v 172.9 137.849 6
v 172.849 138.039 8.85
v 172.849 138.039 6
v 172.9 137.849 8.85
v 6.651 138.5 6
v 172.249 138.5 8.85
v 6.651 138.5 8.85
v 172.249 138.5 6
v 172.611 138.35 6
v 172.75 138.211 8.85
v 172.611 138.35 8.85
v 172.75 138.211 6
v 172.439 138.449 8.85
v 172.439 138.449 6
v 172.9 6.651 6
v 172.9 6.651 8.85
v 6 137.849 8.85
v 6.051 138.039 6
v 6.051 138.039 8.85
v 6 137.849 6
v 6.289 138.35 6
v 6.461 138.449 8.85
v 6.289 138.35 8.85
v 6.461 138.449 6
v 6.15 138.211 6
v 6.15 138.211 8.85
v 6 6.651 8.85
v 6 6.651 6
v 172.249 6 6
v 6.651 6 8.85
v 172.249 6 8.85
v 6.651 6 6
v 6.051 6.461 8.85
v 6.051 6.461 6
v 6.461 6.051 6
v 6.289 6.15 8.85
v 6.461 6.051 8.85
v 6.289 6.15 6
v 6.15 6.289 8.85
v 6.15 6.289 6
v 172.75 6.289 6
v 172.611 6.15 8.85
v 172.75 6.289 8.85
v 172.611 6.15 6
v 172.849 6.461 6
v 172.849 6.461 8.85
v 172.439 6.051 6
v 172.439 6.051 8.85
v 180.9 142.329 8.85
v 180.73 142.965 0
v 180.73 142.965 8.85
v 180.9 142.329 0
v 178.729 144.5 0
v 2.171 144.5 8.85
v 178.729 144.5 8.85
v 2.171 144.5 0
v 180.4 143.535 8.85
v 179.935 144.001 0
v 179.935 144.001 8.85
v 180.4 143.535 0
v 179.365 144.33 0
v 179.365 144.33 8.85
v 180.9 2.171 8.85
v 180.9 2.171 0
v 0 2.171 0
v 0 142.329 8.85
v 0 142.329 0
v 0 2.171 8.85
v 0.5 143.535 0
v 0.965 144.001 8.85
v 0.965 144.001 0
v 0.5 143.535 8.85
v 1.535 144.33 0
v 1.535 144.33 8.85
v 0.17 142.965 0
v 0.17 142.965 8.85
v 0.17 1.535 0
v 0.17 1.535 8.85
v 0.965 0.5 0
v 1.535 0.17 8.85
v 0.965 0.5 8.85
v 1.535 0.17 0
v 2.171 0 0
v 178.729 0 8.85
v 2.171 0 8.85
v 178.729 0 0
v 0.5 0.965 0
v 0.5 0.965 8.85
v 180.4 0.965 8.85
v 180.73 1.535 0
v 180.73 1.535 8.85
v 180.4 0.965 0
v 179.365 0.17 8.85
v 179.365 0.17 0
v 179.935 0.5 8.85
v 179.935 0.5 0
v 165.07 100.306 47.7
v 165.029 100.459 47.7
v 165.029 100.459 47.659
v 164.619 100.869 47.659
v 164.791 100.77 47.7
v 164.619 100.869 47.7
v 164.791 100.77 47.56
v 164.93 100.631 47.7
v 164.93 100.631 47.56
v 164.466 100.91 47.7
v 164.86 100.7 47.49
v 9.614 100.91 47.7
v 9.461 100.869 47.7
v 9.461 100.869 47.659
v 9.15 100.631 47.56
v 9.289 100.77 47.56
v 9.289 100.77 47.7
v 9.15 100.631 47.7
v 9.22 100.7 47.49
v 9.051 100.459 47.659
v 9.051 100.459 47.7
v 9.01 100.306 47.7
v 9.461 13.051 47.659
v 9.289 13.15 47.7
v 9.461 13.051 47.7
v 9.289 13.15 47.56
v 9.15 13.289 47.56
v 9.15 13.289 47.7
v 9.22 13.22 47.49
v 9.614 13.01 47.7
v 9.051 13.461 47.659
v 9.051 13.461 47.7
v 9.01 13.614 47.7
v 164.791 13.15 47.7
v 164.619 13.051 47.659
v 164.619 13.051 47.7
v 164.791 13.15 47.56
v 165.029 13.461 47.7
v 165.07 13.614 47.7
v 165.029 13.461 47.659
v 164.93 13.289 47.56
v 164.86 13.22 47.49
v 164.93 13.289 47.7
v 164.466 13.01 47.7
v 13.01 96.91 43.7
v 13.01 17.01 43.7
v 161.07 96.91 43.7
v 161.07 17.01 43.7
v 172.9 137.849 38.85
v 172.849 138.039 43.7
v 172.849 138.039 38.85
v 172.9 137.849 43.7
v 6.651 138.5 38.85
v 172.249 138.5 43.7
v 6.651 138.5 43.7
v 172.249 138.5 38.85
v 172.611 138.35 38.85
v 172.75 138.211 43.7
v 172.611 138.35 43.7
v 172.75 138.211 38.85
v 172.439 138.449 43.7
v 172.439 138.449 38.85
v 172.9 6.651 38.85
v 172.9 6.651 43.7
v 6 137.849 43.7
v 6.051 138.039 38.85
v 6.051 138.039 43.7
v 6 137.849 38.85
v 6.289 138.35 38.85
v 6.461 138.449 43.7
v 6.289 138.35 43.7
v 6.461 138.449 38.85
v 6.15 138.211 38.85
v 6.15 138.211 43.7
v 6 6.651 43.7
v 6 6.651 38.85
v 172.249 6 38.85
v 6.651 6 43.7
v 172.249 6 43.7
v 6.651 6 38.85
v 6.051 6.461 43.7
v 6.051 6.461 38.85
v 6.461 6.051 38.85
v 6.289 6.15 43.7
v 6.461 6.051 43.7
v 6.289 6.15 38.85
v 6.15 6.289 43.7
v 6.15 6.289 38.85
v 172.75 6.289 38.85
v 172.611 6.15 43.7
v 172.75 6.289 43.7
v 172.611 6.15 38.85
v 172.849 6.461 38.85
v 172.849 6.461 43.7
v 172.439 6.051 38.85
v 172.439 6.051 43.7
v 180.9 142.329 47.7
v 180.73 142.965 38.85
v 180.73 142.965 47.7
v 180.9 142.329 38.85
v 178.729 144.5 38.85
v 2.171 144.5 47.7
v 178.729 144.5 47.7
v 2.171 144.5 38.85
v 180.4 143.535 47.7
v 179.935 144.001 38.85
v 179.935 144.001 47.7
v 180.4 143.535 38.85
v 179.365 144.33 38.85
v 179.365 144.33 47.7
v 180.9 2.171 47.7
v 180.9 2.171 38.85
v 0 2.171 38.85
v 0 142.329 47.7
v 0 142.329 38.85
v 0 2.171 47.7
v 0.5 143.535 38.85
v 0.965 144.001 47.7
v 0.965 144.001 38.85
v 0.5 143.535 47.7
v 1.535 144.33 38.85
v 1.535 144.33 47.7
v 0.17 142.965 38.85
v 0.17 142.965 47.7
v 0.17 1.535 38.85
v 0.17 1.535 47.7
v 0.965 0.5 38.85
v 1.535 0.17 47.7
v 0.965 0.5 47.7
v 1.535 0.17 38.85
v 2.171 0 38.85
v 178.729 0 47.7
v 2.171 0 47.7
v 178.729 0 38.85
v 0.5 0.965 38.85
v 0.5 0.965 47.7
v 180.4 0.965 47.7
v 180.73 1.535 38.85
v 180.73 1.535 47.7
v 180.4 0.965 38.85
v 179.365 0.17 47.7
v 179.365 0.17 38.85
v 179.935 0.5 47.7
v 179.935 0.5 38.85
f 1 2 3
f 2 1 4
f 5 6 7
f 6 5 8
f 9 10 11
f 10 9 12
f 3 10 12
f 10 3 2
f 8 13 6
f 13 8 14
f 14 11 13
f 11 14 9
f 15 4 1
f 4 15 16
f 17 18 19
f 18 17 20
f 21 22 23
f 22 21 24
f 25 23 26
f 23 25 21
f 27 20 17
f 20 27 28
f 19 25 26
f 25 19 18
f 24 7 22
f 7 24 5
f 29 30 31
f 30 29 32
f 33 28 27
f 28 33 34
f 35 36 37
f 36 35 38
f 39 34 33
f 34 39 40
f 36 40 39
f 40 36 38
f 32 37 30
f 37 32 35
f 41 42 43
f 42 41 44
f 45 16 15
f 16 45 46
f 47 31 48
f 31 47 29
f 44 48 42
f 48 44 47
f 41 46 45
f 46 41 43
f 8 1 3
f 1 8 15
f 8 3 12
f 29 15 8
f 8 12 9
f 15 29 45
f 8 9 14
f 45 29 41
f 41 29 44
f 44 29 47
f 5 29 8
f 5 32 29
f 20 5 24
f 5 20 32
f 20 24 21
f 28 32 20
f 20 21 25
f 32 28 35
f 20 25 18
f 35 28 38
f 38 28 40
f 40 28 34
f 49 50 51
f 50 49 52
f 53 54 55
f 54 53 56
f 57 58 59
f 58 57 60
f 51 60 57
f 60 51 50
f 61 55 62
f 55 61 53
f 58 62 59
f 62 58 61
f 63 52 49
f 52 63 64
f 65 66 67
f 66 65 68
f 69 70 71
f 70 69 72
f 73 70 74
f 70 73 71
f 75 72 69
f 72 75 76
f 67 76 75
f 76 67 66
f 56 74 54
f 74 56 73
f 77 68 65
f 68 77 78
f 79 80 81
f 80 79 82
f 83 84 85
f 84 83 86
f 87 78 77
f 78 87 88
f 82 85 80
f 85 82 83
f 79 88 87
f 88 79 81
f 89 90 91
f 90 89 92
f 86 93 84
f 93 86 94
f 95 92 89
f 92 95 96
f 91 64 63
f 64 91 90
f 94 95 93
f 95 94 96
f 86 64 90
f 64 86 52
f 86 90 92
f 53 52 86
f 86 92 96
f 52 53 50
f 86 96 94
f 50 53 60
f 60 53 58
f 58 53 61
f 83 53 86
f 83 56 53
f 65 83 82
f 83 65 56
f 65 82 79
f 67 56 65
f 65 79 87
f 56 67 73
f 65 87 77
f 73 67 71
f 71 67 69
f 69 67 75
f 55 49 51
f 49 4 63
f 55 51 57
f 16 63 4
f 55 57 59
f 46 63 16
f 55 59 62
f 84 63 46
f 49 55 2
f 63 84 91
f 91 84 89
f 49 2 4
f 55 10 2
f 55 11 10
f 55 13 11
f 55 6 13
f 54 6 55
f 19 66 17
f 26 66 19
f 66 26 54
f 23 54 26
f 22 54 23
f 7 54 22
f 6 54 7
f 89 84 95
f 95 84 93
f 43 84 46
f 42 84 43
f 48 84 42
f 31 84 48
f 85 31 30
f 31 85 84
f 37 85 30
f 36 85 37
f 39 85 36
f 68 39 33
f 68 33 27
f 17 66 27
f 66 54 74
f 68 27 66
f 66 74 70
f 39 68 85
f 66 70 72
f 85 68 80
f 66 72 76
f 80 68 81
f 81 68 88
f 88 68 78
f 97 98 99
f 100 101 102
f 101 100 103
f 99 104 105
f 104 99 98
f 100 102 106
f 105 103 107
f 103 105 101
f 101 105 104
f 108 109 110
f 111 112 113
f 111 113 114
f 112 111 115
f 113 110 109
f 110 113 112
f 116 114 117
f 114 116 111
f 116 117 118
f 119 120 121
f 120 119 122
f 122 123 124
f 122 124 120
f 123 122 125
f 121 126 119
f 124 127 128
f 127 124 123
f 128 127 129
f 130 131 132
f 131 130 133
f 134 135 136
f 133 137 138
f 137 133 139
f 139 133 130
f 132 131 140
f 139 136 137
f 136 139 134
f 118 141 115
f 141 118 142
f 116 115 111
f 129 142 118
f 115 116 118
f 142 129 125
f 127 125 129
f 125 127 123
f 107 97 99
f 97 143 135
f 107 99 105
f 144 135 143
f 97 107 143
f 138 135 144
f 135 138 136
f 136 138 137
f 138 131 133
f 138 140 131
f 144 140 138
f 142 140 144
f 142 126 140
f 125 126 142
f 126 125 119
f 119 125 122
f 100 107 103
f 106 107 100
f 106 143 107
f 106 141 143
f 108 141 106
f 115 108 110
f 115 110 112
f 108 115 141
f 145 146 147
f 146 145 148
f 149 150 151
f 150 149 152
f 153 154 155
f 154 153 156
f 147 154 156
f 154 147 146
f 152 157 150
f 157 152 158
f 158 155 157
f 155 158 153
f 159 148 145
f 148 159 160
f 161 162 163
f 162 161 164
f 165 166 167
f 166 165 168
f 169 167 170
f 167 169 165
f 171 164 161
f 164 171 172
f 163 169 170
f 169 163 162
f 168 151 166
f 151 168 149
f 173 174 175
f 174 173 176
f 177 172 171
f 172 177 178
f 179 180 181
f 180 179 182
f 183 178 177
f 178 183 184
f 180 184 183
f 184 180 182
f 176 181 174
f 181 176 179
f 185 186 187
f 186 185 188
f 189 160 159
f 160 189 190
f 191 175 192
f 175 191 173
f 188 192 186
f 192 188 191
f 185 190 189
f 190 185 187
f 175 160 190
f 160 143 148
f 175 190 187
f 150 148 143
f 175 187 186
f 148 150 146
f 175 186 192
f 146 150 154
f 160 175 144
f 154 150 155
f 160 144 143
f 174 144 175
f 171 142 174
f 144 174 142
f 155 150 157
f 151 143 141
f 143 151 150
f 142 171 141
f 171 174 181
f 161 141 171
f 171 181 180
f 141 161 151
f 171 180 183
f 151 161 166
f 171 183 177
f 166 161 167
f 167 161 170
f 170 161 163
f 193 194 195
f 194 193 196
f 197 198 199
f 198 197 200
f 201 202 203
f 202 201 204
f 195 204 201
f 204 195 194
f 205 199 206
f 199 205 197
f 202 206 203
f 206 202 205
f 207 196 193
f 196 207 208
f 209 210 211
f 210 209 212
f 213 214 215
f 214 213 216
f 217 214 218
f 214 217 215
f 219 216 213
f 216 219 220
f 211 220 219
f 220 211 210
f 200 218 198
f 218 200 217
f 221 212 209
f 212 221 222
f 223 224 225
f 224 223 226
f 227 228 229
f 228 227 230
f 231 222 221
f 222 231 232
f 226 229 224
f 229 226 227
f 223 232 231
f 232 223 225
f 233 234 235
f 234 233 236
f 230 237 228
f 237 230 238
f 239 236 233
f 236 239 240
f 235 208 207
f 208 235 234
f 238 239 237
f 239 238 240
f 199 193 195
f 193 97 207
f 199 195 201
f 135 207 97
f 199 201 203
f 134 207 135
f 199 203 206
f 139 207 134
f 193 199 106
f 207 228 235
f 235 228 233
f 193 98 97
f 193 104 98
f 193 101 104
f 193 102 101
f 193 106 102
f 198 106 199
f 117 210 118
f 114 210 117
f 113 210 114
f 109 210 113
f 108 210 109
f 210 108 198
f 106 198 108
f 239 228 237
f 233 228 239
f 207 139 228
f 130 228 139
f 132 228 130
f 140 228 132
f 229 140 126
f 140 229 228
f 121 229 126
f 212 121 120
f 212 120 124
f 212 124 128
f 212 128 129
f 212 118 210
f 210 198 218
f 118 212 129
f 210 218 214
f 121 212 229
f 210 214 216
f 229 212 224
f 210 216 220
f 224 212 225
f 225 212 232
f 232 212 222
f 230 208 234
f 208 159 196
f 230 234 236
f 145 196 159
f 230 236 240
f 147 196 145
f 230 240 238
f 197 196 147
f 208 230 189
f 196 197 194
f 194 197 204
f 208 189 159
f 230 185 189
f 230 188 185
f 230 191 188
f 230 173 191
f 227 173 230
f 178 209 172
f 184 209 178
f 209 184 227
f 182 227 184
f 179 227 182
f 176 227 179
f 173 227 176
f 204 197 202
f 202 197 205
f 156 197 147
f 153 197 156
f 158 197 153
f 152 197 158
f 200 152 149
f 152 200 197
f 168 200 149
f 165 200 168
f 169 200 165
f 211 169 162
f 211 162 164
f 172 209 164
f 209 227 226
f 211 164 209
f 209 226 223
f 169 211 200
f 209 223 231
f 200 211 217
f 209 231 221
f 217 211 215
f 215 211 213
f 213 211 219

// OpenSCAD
/*     _   __                           __  __  ___      __
 *    / | / /___ ______________  ____  / /_/  |/  /___ _/ /_____  _____
 *   /  |/ / __ `/ ___/ ___/ _ \/ __ \/ __/ /|_/ / __ `/ //_/ _ \/ ___/
 *  / /|  / /_/ (__  ) /__/  __/ / / / /_/ /  / / /_/ / ,< /  __/ /
 * /_/ |_/\__,_/____/\___/\___/_/ /_/\__/_/  /_/\__,_/_/|_|\___/_/
 *
 * This work is licensed under the Creative Commons Attribution-ShareAlike
 * 4.0 International License. To view a copy of this license, visit
 * https://creativecommons.org/licenses/by-sa/4.0/.
 */

/*                __             _
 *  ______ _____ / /____  __ _  (_)__ ___ ____
 * / __/ // (_-</ __/ _ \/  ' \/ /_ // -_) __/
 * \__/\_,_/___/\__/\___/_/_/_/_//__/\__/_/
 */

/* [Customizable Display Enclosure] */

// Module size in mm, W and H, defaults to the size of the Innolux AT070TN94
module_size = [164.9, 100.0];
// Module depth in mm
module_thickness = 5.7;
// Display active area in mm, W and H
display_active_area_size = [154.08, 85.92];
// Enclosure tolerance in mm
enclosure_tolerance = 1.0; // [0.5, 0.75, 1, 1.25, 1.50, 1.75, 2]
// Enclosure wall depth
enclosure_wall_thickness = 5.0;
// Dimensions of the breakout button PCB
button_pcb_dimensions = [75.25, 16.25];

/* [Preview Settings] */

// Split enclosure into parts
preview_parts = true;

/*    __       __        __   __  __  __                     __
 *   / /  ___ / /  ___  / /__/ / / /_/ /  ___   _______  ___/ /__
 *  / _ \/ -_) _ \/ _ \/ / _  / / __/ _ \/ -_) / __/ _ \/ _  / -_)
 * /_.__/\__/_//_/\___/_/\_,_/  \__/_//_/\__/  \__/\___/\_,_/\__/
 */

/* [Hidden] */

include <../libraries/BOSL/constants.scad>
use <../libraries/BOSL/shapes.scad>
use <../libraries/BOSL/masks.scad>
use <../libraries/BOSL/transforms.scad>
use <../libraries/BOSL/math.scad>

m_pad = enclosure_tolerance * 2;
e_pad = enclosure_tolerance + enclosure_wall_thickness;
extern_size = [module_size[0]+(e_pad*2)+(m_pad*2), module_size[1]+(e_pad*2)+(button_pcb_dimensions[1]*2), module_thickness+(e_pad*2)];

module display_aperture() {
    n_size=[display_active_area_size[0]+m_pad, display_active_area_size[1]+m_pad, module_thickness+m_pad];
    difference() {
        cuboid(size=n_size, fillet=0.75, edges=EDGES_Z_ALL, center=false, $fn=24);
        right(n_size[0]/2) xspread(n_size[0]) chamfer_mask(l=n_size[1], chamfer=e_pad, orient=ORIENT_Y, center=false);
        back(n_size[1]/2) yspread(n_size[1]) chamfer_mask(l=n_size[0], chamfer=e_pad, orient=ORIENT_X, center=false);
    }
}

module enclosure() {
    difference() {
        cuboid(size=extern_size, fillet=2.5, edges=EDGES_Z_ALL, center=false, $fn=24);
        translate([e_pad, e_pad, e_pad]) {
            cuboid(size=[module_size[0]+m_pad, module_size[1]+(button_pcb_dimensions[1]*2), module_thickness+m_pad], fillet=0.75, edges=EDGES_Z_ALL, center=false, $fn=24);
            translate([enclosure_tolerance+2, e_pad+enclosure_tolerance, module_thickness+0.01]) {
                display_aperture();
            }
        }
    }
}

module enclosure_separator() {
    translate([-0.01, -0.01, extern_size[2]/2]) {
        cuboid(size=[extern_size[0]+0.02, extern_size[1]+0.02, (extern_size[2]/2)+0.01], center=false);
    }
}

module generate_parts() {
    if (preview_parts==true) {
        difference() {
            enclosure();
            enclosure_separator();
        }

        translate([0, 0, 30]) {
            intersection() {
                enclosure();
                enclosure_separator();
            }
        }
    } else {
        enclosure();
    }
}

generate_parts();

if ($preview==true) {
    group("display") {
        translate([e_pad+enclosure_tolerance, e_pad+enclosure_tolerance, e_pad+0.01]) {
            color("green", 0.25)
            cuboid(size=concat(module_size, module_thickness), $fn=24, center=false);
            translate([4, 10, module_thickness+0.01])
            color("black", 0.1)
            cuboid(size=concat(display_active_area_size, 1), $fn=24, center=false);
        }
    }
    group("controls") {
    }
}
